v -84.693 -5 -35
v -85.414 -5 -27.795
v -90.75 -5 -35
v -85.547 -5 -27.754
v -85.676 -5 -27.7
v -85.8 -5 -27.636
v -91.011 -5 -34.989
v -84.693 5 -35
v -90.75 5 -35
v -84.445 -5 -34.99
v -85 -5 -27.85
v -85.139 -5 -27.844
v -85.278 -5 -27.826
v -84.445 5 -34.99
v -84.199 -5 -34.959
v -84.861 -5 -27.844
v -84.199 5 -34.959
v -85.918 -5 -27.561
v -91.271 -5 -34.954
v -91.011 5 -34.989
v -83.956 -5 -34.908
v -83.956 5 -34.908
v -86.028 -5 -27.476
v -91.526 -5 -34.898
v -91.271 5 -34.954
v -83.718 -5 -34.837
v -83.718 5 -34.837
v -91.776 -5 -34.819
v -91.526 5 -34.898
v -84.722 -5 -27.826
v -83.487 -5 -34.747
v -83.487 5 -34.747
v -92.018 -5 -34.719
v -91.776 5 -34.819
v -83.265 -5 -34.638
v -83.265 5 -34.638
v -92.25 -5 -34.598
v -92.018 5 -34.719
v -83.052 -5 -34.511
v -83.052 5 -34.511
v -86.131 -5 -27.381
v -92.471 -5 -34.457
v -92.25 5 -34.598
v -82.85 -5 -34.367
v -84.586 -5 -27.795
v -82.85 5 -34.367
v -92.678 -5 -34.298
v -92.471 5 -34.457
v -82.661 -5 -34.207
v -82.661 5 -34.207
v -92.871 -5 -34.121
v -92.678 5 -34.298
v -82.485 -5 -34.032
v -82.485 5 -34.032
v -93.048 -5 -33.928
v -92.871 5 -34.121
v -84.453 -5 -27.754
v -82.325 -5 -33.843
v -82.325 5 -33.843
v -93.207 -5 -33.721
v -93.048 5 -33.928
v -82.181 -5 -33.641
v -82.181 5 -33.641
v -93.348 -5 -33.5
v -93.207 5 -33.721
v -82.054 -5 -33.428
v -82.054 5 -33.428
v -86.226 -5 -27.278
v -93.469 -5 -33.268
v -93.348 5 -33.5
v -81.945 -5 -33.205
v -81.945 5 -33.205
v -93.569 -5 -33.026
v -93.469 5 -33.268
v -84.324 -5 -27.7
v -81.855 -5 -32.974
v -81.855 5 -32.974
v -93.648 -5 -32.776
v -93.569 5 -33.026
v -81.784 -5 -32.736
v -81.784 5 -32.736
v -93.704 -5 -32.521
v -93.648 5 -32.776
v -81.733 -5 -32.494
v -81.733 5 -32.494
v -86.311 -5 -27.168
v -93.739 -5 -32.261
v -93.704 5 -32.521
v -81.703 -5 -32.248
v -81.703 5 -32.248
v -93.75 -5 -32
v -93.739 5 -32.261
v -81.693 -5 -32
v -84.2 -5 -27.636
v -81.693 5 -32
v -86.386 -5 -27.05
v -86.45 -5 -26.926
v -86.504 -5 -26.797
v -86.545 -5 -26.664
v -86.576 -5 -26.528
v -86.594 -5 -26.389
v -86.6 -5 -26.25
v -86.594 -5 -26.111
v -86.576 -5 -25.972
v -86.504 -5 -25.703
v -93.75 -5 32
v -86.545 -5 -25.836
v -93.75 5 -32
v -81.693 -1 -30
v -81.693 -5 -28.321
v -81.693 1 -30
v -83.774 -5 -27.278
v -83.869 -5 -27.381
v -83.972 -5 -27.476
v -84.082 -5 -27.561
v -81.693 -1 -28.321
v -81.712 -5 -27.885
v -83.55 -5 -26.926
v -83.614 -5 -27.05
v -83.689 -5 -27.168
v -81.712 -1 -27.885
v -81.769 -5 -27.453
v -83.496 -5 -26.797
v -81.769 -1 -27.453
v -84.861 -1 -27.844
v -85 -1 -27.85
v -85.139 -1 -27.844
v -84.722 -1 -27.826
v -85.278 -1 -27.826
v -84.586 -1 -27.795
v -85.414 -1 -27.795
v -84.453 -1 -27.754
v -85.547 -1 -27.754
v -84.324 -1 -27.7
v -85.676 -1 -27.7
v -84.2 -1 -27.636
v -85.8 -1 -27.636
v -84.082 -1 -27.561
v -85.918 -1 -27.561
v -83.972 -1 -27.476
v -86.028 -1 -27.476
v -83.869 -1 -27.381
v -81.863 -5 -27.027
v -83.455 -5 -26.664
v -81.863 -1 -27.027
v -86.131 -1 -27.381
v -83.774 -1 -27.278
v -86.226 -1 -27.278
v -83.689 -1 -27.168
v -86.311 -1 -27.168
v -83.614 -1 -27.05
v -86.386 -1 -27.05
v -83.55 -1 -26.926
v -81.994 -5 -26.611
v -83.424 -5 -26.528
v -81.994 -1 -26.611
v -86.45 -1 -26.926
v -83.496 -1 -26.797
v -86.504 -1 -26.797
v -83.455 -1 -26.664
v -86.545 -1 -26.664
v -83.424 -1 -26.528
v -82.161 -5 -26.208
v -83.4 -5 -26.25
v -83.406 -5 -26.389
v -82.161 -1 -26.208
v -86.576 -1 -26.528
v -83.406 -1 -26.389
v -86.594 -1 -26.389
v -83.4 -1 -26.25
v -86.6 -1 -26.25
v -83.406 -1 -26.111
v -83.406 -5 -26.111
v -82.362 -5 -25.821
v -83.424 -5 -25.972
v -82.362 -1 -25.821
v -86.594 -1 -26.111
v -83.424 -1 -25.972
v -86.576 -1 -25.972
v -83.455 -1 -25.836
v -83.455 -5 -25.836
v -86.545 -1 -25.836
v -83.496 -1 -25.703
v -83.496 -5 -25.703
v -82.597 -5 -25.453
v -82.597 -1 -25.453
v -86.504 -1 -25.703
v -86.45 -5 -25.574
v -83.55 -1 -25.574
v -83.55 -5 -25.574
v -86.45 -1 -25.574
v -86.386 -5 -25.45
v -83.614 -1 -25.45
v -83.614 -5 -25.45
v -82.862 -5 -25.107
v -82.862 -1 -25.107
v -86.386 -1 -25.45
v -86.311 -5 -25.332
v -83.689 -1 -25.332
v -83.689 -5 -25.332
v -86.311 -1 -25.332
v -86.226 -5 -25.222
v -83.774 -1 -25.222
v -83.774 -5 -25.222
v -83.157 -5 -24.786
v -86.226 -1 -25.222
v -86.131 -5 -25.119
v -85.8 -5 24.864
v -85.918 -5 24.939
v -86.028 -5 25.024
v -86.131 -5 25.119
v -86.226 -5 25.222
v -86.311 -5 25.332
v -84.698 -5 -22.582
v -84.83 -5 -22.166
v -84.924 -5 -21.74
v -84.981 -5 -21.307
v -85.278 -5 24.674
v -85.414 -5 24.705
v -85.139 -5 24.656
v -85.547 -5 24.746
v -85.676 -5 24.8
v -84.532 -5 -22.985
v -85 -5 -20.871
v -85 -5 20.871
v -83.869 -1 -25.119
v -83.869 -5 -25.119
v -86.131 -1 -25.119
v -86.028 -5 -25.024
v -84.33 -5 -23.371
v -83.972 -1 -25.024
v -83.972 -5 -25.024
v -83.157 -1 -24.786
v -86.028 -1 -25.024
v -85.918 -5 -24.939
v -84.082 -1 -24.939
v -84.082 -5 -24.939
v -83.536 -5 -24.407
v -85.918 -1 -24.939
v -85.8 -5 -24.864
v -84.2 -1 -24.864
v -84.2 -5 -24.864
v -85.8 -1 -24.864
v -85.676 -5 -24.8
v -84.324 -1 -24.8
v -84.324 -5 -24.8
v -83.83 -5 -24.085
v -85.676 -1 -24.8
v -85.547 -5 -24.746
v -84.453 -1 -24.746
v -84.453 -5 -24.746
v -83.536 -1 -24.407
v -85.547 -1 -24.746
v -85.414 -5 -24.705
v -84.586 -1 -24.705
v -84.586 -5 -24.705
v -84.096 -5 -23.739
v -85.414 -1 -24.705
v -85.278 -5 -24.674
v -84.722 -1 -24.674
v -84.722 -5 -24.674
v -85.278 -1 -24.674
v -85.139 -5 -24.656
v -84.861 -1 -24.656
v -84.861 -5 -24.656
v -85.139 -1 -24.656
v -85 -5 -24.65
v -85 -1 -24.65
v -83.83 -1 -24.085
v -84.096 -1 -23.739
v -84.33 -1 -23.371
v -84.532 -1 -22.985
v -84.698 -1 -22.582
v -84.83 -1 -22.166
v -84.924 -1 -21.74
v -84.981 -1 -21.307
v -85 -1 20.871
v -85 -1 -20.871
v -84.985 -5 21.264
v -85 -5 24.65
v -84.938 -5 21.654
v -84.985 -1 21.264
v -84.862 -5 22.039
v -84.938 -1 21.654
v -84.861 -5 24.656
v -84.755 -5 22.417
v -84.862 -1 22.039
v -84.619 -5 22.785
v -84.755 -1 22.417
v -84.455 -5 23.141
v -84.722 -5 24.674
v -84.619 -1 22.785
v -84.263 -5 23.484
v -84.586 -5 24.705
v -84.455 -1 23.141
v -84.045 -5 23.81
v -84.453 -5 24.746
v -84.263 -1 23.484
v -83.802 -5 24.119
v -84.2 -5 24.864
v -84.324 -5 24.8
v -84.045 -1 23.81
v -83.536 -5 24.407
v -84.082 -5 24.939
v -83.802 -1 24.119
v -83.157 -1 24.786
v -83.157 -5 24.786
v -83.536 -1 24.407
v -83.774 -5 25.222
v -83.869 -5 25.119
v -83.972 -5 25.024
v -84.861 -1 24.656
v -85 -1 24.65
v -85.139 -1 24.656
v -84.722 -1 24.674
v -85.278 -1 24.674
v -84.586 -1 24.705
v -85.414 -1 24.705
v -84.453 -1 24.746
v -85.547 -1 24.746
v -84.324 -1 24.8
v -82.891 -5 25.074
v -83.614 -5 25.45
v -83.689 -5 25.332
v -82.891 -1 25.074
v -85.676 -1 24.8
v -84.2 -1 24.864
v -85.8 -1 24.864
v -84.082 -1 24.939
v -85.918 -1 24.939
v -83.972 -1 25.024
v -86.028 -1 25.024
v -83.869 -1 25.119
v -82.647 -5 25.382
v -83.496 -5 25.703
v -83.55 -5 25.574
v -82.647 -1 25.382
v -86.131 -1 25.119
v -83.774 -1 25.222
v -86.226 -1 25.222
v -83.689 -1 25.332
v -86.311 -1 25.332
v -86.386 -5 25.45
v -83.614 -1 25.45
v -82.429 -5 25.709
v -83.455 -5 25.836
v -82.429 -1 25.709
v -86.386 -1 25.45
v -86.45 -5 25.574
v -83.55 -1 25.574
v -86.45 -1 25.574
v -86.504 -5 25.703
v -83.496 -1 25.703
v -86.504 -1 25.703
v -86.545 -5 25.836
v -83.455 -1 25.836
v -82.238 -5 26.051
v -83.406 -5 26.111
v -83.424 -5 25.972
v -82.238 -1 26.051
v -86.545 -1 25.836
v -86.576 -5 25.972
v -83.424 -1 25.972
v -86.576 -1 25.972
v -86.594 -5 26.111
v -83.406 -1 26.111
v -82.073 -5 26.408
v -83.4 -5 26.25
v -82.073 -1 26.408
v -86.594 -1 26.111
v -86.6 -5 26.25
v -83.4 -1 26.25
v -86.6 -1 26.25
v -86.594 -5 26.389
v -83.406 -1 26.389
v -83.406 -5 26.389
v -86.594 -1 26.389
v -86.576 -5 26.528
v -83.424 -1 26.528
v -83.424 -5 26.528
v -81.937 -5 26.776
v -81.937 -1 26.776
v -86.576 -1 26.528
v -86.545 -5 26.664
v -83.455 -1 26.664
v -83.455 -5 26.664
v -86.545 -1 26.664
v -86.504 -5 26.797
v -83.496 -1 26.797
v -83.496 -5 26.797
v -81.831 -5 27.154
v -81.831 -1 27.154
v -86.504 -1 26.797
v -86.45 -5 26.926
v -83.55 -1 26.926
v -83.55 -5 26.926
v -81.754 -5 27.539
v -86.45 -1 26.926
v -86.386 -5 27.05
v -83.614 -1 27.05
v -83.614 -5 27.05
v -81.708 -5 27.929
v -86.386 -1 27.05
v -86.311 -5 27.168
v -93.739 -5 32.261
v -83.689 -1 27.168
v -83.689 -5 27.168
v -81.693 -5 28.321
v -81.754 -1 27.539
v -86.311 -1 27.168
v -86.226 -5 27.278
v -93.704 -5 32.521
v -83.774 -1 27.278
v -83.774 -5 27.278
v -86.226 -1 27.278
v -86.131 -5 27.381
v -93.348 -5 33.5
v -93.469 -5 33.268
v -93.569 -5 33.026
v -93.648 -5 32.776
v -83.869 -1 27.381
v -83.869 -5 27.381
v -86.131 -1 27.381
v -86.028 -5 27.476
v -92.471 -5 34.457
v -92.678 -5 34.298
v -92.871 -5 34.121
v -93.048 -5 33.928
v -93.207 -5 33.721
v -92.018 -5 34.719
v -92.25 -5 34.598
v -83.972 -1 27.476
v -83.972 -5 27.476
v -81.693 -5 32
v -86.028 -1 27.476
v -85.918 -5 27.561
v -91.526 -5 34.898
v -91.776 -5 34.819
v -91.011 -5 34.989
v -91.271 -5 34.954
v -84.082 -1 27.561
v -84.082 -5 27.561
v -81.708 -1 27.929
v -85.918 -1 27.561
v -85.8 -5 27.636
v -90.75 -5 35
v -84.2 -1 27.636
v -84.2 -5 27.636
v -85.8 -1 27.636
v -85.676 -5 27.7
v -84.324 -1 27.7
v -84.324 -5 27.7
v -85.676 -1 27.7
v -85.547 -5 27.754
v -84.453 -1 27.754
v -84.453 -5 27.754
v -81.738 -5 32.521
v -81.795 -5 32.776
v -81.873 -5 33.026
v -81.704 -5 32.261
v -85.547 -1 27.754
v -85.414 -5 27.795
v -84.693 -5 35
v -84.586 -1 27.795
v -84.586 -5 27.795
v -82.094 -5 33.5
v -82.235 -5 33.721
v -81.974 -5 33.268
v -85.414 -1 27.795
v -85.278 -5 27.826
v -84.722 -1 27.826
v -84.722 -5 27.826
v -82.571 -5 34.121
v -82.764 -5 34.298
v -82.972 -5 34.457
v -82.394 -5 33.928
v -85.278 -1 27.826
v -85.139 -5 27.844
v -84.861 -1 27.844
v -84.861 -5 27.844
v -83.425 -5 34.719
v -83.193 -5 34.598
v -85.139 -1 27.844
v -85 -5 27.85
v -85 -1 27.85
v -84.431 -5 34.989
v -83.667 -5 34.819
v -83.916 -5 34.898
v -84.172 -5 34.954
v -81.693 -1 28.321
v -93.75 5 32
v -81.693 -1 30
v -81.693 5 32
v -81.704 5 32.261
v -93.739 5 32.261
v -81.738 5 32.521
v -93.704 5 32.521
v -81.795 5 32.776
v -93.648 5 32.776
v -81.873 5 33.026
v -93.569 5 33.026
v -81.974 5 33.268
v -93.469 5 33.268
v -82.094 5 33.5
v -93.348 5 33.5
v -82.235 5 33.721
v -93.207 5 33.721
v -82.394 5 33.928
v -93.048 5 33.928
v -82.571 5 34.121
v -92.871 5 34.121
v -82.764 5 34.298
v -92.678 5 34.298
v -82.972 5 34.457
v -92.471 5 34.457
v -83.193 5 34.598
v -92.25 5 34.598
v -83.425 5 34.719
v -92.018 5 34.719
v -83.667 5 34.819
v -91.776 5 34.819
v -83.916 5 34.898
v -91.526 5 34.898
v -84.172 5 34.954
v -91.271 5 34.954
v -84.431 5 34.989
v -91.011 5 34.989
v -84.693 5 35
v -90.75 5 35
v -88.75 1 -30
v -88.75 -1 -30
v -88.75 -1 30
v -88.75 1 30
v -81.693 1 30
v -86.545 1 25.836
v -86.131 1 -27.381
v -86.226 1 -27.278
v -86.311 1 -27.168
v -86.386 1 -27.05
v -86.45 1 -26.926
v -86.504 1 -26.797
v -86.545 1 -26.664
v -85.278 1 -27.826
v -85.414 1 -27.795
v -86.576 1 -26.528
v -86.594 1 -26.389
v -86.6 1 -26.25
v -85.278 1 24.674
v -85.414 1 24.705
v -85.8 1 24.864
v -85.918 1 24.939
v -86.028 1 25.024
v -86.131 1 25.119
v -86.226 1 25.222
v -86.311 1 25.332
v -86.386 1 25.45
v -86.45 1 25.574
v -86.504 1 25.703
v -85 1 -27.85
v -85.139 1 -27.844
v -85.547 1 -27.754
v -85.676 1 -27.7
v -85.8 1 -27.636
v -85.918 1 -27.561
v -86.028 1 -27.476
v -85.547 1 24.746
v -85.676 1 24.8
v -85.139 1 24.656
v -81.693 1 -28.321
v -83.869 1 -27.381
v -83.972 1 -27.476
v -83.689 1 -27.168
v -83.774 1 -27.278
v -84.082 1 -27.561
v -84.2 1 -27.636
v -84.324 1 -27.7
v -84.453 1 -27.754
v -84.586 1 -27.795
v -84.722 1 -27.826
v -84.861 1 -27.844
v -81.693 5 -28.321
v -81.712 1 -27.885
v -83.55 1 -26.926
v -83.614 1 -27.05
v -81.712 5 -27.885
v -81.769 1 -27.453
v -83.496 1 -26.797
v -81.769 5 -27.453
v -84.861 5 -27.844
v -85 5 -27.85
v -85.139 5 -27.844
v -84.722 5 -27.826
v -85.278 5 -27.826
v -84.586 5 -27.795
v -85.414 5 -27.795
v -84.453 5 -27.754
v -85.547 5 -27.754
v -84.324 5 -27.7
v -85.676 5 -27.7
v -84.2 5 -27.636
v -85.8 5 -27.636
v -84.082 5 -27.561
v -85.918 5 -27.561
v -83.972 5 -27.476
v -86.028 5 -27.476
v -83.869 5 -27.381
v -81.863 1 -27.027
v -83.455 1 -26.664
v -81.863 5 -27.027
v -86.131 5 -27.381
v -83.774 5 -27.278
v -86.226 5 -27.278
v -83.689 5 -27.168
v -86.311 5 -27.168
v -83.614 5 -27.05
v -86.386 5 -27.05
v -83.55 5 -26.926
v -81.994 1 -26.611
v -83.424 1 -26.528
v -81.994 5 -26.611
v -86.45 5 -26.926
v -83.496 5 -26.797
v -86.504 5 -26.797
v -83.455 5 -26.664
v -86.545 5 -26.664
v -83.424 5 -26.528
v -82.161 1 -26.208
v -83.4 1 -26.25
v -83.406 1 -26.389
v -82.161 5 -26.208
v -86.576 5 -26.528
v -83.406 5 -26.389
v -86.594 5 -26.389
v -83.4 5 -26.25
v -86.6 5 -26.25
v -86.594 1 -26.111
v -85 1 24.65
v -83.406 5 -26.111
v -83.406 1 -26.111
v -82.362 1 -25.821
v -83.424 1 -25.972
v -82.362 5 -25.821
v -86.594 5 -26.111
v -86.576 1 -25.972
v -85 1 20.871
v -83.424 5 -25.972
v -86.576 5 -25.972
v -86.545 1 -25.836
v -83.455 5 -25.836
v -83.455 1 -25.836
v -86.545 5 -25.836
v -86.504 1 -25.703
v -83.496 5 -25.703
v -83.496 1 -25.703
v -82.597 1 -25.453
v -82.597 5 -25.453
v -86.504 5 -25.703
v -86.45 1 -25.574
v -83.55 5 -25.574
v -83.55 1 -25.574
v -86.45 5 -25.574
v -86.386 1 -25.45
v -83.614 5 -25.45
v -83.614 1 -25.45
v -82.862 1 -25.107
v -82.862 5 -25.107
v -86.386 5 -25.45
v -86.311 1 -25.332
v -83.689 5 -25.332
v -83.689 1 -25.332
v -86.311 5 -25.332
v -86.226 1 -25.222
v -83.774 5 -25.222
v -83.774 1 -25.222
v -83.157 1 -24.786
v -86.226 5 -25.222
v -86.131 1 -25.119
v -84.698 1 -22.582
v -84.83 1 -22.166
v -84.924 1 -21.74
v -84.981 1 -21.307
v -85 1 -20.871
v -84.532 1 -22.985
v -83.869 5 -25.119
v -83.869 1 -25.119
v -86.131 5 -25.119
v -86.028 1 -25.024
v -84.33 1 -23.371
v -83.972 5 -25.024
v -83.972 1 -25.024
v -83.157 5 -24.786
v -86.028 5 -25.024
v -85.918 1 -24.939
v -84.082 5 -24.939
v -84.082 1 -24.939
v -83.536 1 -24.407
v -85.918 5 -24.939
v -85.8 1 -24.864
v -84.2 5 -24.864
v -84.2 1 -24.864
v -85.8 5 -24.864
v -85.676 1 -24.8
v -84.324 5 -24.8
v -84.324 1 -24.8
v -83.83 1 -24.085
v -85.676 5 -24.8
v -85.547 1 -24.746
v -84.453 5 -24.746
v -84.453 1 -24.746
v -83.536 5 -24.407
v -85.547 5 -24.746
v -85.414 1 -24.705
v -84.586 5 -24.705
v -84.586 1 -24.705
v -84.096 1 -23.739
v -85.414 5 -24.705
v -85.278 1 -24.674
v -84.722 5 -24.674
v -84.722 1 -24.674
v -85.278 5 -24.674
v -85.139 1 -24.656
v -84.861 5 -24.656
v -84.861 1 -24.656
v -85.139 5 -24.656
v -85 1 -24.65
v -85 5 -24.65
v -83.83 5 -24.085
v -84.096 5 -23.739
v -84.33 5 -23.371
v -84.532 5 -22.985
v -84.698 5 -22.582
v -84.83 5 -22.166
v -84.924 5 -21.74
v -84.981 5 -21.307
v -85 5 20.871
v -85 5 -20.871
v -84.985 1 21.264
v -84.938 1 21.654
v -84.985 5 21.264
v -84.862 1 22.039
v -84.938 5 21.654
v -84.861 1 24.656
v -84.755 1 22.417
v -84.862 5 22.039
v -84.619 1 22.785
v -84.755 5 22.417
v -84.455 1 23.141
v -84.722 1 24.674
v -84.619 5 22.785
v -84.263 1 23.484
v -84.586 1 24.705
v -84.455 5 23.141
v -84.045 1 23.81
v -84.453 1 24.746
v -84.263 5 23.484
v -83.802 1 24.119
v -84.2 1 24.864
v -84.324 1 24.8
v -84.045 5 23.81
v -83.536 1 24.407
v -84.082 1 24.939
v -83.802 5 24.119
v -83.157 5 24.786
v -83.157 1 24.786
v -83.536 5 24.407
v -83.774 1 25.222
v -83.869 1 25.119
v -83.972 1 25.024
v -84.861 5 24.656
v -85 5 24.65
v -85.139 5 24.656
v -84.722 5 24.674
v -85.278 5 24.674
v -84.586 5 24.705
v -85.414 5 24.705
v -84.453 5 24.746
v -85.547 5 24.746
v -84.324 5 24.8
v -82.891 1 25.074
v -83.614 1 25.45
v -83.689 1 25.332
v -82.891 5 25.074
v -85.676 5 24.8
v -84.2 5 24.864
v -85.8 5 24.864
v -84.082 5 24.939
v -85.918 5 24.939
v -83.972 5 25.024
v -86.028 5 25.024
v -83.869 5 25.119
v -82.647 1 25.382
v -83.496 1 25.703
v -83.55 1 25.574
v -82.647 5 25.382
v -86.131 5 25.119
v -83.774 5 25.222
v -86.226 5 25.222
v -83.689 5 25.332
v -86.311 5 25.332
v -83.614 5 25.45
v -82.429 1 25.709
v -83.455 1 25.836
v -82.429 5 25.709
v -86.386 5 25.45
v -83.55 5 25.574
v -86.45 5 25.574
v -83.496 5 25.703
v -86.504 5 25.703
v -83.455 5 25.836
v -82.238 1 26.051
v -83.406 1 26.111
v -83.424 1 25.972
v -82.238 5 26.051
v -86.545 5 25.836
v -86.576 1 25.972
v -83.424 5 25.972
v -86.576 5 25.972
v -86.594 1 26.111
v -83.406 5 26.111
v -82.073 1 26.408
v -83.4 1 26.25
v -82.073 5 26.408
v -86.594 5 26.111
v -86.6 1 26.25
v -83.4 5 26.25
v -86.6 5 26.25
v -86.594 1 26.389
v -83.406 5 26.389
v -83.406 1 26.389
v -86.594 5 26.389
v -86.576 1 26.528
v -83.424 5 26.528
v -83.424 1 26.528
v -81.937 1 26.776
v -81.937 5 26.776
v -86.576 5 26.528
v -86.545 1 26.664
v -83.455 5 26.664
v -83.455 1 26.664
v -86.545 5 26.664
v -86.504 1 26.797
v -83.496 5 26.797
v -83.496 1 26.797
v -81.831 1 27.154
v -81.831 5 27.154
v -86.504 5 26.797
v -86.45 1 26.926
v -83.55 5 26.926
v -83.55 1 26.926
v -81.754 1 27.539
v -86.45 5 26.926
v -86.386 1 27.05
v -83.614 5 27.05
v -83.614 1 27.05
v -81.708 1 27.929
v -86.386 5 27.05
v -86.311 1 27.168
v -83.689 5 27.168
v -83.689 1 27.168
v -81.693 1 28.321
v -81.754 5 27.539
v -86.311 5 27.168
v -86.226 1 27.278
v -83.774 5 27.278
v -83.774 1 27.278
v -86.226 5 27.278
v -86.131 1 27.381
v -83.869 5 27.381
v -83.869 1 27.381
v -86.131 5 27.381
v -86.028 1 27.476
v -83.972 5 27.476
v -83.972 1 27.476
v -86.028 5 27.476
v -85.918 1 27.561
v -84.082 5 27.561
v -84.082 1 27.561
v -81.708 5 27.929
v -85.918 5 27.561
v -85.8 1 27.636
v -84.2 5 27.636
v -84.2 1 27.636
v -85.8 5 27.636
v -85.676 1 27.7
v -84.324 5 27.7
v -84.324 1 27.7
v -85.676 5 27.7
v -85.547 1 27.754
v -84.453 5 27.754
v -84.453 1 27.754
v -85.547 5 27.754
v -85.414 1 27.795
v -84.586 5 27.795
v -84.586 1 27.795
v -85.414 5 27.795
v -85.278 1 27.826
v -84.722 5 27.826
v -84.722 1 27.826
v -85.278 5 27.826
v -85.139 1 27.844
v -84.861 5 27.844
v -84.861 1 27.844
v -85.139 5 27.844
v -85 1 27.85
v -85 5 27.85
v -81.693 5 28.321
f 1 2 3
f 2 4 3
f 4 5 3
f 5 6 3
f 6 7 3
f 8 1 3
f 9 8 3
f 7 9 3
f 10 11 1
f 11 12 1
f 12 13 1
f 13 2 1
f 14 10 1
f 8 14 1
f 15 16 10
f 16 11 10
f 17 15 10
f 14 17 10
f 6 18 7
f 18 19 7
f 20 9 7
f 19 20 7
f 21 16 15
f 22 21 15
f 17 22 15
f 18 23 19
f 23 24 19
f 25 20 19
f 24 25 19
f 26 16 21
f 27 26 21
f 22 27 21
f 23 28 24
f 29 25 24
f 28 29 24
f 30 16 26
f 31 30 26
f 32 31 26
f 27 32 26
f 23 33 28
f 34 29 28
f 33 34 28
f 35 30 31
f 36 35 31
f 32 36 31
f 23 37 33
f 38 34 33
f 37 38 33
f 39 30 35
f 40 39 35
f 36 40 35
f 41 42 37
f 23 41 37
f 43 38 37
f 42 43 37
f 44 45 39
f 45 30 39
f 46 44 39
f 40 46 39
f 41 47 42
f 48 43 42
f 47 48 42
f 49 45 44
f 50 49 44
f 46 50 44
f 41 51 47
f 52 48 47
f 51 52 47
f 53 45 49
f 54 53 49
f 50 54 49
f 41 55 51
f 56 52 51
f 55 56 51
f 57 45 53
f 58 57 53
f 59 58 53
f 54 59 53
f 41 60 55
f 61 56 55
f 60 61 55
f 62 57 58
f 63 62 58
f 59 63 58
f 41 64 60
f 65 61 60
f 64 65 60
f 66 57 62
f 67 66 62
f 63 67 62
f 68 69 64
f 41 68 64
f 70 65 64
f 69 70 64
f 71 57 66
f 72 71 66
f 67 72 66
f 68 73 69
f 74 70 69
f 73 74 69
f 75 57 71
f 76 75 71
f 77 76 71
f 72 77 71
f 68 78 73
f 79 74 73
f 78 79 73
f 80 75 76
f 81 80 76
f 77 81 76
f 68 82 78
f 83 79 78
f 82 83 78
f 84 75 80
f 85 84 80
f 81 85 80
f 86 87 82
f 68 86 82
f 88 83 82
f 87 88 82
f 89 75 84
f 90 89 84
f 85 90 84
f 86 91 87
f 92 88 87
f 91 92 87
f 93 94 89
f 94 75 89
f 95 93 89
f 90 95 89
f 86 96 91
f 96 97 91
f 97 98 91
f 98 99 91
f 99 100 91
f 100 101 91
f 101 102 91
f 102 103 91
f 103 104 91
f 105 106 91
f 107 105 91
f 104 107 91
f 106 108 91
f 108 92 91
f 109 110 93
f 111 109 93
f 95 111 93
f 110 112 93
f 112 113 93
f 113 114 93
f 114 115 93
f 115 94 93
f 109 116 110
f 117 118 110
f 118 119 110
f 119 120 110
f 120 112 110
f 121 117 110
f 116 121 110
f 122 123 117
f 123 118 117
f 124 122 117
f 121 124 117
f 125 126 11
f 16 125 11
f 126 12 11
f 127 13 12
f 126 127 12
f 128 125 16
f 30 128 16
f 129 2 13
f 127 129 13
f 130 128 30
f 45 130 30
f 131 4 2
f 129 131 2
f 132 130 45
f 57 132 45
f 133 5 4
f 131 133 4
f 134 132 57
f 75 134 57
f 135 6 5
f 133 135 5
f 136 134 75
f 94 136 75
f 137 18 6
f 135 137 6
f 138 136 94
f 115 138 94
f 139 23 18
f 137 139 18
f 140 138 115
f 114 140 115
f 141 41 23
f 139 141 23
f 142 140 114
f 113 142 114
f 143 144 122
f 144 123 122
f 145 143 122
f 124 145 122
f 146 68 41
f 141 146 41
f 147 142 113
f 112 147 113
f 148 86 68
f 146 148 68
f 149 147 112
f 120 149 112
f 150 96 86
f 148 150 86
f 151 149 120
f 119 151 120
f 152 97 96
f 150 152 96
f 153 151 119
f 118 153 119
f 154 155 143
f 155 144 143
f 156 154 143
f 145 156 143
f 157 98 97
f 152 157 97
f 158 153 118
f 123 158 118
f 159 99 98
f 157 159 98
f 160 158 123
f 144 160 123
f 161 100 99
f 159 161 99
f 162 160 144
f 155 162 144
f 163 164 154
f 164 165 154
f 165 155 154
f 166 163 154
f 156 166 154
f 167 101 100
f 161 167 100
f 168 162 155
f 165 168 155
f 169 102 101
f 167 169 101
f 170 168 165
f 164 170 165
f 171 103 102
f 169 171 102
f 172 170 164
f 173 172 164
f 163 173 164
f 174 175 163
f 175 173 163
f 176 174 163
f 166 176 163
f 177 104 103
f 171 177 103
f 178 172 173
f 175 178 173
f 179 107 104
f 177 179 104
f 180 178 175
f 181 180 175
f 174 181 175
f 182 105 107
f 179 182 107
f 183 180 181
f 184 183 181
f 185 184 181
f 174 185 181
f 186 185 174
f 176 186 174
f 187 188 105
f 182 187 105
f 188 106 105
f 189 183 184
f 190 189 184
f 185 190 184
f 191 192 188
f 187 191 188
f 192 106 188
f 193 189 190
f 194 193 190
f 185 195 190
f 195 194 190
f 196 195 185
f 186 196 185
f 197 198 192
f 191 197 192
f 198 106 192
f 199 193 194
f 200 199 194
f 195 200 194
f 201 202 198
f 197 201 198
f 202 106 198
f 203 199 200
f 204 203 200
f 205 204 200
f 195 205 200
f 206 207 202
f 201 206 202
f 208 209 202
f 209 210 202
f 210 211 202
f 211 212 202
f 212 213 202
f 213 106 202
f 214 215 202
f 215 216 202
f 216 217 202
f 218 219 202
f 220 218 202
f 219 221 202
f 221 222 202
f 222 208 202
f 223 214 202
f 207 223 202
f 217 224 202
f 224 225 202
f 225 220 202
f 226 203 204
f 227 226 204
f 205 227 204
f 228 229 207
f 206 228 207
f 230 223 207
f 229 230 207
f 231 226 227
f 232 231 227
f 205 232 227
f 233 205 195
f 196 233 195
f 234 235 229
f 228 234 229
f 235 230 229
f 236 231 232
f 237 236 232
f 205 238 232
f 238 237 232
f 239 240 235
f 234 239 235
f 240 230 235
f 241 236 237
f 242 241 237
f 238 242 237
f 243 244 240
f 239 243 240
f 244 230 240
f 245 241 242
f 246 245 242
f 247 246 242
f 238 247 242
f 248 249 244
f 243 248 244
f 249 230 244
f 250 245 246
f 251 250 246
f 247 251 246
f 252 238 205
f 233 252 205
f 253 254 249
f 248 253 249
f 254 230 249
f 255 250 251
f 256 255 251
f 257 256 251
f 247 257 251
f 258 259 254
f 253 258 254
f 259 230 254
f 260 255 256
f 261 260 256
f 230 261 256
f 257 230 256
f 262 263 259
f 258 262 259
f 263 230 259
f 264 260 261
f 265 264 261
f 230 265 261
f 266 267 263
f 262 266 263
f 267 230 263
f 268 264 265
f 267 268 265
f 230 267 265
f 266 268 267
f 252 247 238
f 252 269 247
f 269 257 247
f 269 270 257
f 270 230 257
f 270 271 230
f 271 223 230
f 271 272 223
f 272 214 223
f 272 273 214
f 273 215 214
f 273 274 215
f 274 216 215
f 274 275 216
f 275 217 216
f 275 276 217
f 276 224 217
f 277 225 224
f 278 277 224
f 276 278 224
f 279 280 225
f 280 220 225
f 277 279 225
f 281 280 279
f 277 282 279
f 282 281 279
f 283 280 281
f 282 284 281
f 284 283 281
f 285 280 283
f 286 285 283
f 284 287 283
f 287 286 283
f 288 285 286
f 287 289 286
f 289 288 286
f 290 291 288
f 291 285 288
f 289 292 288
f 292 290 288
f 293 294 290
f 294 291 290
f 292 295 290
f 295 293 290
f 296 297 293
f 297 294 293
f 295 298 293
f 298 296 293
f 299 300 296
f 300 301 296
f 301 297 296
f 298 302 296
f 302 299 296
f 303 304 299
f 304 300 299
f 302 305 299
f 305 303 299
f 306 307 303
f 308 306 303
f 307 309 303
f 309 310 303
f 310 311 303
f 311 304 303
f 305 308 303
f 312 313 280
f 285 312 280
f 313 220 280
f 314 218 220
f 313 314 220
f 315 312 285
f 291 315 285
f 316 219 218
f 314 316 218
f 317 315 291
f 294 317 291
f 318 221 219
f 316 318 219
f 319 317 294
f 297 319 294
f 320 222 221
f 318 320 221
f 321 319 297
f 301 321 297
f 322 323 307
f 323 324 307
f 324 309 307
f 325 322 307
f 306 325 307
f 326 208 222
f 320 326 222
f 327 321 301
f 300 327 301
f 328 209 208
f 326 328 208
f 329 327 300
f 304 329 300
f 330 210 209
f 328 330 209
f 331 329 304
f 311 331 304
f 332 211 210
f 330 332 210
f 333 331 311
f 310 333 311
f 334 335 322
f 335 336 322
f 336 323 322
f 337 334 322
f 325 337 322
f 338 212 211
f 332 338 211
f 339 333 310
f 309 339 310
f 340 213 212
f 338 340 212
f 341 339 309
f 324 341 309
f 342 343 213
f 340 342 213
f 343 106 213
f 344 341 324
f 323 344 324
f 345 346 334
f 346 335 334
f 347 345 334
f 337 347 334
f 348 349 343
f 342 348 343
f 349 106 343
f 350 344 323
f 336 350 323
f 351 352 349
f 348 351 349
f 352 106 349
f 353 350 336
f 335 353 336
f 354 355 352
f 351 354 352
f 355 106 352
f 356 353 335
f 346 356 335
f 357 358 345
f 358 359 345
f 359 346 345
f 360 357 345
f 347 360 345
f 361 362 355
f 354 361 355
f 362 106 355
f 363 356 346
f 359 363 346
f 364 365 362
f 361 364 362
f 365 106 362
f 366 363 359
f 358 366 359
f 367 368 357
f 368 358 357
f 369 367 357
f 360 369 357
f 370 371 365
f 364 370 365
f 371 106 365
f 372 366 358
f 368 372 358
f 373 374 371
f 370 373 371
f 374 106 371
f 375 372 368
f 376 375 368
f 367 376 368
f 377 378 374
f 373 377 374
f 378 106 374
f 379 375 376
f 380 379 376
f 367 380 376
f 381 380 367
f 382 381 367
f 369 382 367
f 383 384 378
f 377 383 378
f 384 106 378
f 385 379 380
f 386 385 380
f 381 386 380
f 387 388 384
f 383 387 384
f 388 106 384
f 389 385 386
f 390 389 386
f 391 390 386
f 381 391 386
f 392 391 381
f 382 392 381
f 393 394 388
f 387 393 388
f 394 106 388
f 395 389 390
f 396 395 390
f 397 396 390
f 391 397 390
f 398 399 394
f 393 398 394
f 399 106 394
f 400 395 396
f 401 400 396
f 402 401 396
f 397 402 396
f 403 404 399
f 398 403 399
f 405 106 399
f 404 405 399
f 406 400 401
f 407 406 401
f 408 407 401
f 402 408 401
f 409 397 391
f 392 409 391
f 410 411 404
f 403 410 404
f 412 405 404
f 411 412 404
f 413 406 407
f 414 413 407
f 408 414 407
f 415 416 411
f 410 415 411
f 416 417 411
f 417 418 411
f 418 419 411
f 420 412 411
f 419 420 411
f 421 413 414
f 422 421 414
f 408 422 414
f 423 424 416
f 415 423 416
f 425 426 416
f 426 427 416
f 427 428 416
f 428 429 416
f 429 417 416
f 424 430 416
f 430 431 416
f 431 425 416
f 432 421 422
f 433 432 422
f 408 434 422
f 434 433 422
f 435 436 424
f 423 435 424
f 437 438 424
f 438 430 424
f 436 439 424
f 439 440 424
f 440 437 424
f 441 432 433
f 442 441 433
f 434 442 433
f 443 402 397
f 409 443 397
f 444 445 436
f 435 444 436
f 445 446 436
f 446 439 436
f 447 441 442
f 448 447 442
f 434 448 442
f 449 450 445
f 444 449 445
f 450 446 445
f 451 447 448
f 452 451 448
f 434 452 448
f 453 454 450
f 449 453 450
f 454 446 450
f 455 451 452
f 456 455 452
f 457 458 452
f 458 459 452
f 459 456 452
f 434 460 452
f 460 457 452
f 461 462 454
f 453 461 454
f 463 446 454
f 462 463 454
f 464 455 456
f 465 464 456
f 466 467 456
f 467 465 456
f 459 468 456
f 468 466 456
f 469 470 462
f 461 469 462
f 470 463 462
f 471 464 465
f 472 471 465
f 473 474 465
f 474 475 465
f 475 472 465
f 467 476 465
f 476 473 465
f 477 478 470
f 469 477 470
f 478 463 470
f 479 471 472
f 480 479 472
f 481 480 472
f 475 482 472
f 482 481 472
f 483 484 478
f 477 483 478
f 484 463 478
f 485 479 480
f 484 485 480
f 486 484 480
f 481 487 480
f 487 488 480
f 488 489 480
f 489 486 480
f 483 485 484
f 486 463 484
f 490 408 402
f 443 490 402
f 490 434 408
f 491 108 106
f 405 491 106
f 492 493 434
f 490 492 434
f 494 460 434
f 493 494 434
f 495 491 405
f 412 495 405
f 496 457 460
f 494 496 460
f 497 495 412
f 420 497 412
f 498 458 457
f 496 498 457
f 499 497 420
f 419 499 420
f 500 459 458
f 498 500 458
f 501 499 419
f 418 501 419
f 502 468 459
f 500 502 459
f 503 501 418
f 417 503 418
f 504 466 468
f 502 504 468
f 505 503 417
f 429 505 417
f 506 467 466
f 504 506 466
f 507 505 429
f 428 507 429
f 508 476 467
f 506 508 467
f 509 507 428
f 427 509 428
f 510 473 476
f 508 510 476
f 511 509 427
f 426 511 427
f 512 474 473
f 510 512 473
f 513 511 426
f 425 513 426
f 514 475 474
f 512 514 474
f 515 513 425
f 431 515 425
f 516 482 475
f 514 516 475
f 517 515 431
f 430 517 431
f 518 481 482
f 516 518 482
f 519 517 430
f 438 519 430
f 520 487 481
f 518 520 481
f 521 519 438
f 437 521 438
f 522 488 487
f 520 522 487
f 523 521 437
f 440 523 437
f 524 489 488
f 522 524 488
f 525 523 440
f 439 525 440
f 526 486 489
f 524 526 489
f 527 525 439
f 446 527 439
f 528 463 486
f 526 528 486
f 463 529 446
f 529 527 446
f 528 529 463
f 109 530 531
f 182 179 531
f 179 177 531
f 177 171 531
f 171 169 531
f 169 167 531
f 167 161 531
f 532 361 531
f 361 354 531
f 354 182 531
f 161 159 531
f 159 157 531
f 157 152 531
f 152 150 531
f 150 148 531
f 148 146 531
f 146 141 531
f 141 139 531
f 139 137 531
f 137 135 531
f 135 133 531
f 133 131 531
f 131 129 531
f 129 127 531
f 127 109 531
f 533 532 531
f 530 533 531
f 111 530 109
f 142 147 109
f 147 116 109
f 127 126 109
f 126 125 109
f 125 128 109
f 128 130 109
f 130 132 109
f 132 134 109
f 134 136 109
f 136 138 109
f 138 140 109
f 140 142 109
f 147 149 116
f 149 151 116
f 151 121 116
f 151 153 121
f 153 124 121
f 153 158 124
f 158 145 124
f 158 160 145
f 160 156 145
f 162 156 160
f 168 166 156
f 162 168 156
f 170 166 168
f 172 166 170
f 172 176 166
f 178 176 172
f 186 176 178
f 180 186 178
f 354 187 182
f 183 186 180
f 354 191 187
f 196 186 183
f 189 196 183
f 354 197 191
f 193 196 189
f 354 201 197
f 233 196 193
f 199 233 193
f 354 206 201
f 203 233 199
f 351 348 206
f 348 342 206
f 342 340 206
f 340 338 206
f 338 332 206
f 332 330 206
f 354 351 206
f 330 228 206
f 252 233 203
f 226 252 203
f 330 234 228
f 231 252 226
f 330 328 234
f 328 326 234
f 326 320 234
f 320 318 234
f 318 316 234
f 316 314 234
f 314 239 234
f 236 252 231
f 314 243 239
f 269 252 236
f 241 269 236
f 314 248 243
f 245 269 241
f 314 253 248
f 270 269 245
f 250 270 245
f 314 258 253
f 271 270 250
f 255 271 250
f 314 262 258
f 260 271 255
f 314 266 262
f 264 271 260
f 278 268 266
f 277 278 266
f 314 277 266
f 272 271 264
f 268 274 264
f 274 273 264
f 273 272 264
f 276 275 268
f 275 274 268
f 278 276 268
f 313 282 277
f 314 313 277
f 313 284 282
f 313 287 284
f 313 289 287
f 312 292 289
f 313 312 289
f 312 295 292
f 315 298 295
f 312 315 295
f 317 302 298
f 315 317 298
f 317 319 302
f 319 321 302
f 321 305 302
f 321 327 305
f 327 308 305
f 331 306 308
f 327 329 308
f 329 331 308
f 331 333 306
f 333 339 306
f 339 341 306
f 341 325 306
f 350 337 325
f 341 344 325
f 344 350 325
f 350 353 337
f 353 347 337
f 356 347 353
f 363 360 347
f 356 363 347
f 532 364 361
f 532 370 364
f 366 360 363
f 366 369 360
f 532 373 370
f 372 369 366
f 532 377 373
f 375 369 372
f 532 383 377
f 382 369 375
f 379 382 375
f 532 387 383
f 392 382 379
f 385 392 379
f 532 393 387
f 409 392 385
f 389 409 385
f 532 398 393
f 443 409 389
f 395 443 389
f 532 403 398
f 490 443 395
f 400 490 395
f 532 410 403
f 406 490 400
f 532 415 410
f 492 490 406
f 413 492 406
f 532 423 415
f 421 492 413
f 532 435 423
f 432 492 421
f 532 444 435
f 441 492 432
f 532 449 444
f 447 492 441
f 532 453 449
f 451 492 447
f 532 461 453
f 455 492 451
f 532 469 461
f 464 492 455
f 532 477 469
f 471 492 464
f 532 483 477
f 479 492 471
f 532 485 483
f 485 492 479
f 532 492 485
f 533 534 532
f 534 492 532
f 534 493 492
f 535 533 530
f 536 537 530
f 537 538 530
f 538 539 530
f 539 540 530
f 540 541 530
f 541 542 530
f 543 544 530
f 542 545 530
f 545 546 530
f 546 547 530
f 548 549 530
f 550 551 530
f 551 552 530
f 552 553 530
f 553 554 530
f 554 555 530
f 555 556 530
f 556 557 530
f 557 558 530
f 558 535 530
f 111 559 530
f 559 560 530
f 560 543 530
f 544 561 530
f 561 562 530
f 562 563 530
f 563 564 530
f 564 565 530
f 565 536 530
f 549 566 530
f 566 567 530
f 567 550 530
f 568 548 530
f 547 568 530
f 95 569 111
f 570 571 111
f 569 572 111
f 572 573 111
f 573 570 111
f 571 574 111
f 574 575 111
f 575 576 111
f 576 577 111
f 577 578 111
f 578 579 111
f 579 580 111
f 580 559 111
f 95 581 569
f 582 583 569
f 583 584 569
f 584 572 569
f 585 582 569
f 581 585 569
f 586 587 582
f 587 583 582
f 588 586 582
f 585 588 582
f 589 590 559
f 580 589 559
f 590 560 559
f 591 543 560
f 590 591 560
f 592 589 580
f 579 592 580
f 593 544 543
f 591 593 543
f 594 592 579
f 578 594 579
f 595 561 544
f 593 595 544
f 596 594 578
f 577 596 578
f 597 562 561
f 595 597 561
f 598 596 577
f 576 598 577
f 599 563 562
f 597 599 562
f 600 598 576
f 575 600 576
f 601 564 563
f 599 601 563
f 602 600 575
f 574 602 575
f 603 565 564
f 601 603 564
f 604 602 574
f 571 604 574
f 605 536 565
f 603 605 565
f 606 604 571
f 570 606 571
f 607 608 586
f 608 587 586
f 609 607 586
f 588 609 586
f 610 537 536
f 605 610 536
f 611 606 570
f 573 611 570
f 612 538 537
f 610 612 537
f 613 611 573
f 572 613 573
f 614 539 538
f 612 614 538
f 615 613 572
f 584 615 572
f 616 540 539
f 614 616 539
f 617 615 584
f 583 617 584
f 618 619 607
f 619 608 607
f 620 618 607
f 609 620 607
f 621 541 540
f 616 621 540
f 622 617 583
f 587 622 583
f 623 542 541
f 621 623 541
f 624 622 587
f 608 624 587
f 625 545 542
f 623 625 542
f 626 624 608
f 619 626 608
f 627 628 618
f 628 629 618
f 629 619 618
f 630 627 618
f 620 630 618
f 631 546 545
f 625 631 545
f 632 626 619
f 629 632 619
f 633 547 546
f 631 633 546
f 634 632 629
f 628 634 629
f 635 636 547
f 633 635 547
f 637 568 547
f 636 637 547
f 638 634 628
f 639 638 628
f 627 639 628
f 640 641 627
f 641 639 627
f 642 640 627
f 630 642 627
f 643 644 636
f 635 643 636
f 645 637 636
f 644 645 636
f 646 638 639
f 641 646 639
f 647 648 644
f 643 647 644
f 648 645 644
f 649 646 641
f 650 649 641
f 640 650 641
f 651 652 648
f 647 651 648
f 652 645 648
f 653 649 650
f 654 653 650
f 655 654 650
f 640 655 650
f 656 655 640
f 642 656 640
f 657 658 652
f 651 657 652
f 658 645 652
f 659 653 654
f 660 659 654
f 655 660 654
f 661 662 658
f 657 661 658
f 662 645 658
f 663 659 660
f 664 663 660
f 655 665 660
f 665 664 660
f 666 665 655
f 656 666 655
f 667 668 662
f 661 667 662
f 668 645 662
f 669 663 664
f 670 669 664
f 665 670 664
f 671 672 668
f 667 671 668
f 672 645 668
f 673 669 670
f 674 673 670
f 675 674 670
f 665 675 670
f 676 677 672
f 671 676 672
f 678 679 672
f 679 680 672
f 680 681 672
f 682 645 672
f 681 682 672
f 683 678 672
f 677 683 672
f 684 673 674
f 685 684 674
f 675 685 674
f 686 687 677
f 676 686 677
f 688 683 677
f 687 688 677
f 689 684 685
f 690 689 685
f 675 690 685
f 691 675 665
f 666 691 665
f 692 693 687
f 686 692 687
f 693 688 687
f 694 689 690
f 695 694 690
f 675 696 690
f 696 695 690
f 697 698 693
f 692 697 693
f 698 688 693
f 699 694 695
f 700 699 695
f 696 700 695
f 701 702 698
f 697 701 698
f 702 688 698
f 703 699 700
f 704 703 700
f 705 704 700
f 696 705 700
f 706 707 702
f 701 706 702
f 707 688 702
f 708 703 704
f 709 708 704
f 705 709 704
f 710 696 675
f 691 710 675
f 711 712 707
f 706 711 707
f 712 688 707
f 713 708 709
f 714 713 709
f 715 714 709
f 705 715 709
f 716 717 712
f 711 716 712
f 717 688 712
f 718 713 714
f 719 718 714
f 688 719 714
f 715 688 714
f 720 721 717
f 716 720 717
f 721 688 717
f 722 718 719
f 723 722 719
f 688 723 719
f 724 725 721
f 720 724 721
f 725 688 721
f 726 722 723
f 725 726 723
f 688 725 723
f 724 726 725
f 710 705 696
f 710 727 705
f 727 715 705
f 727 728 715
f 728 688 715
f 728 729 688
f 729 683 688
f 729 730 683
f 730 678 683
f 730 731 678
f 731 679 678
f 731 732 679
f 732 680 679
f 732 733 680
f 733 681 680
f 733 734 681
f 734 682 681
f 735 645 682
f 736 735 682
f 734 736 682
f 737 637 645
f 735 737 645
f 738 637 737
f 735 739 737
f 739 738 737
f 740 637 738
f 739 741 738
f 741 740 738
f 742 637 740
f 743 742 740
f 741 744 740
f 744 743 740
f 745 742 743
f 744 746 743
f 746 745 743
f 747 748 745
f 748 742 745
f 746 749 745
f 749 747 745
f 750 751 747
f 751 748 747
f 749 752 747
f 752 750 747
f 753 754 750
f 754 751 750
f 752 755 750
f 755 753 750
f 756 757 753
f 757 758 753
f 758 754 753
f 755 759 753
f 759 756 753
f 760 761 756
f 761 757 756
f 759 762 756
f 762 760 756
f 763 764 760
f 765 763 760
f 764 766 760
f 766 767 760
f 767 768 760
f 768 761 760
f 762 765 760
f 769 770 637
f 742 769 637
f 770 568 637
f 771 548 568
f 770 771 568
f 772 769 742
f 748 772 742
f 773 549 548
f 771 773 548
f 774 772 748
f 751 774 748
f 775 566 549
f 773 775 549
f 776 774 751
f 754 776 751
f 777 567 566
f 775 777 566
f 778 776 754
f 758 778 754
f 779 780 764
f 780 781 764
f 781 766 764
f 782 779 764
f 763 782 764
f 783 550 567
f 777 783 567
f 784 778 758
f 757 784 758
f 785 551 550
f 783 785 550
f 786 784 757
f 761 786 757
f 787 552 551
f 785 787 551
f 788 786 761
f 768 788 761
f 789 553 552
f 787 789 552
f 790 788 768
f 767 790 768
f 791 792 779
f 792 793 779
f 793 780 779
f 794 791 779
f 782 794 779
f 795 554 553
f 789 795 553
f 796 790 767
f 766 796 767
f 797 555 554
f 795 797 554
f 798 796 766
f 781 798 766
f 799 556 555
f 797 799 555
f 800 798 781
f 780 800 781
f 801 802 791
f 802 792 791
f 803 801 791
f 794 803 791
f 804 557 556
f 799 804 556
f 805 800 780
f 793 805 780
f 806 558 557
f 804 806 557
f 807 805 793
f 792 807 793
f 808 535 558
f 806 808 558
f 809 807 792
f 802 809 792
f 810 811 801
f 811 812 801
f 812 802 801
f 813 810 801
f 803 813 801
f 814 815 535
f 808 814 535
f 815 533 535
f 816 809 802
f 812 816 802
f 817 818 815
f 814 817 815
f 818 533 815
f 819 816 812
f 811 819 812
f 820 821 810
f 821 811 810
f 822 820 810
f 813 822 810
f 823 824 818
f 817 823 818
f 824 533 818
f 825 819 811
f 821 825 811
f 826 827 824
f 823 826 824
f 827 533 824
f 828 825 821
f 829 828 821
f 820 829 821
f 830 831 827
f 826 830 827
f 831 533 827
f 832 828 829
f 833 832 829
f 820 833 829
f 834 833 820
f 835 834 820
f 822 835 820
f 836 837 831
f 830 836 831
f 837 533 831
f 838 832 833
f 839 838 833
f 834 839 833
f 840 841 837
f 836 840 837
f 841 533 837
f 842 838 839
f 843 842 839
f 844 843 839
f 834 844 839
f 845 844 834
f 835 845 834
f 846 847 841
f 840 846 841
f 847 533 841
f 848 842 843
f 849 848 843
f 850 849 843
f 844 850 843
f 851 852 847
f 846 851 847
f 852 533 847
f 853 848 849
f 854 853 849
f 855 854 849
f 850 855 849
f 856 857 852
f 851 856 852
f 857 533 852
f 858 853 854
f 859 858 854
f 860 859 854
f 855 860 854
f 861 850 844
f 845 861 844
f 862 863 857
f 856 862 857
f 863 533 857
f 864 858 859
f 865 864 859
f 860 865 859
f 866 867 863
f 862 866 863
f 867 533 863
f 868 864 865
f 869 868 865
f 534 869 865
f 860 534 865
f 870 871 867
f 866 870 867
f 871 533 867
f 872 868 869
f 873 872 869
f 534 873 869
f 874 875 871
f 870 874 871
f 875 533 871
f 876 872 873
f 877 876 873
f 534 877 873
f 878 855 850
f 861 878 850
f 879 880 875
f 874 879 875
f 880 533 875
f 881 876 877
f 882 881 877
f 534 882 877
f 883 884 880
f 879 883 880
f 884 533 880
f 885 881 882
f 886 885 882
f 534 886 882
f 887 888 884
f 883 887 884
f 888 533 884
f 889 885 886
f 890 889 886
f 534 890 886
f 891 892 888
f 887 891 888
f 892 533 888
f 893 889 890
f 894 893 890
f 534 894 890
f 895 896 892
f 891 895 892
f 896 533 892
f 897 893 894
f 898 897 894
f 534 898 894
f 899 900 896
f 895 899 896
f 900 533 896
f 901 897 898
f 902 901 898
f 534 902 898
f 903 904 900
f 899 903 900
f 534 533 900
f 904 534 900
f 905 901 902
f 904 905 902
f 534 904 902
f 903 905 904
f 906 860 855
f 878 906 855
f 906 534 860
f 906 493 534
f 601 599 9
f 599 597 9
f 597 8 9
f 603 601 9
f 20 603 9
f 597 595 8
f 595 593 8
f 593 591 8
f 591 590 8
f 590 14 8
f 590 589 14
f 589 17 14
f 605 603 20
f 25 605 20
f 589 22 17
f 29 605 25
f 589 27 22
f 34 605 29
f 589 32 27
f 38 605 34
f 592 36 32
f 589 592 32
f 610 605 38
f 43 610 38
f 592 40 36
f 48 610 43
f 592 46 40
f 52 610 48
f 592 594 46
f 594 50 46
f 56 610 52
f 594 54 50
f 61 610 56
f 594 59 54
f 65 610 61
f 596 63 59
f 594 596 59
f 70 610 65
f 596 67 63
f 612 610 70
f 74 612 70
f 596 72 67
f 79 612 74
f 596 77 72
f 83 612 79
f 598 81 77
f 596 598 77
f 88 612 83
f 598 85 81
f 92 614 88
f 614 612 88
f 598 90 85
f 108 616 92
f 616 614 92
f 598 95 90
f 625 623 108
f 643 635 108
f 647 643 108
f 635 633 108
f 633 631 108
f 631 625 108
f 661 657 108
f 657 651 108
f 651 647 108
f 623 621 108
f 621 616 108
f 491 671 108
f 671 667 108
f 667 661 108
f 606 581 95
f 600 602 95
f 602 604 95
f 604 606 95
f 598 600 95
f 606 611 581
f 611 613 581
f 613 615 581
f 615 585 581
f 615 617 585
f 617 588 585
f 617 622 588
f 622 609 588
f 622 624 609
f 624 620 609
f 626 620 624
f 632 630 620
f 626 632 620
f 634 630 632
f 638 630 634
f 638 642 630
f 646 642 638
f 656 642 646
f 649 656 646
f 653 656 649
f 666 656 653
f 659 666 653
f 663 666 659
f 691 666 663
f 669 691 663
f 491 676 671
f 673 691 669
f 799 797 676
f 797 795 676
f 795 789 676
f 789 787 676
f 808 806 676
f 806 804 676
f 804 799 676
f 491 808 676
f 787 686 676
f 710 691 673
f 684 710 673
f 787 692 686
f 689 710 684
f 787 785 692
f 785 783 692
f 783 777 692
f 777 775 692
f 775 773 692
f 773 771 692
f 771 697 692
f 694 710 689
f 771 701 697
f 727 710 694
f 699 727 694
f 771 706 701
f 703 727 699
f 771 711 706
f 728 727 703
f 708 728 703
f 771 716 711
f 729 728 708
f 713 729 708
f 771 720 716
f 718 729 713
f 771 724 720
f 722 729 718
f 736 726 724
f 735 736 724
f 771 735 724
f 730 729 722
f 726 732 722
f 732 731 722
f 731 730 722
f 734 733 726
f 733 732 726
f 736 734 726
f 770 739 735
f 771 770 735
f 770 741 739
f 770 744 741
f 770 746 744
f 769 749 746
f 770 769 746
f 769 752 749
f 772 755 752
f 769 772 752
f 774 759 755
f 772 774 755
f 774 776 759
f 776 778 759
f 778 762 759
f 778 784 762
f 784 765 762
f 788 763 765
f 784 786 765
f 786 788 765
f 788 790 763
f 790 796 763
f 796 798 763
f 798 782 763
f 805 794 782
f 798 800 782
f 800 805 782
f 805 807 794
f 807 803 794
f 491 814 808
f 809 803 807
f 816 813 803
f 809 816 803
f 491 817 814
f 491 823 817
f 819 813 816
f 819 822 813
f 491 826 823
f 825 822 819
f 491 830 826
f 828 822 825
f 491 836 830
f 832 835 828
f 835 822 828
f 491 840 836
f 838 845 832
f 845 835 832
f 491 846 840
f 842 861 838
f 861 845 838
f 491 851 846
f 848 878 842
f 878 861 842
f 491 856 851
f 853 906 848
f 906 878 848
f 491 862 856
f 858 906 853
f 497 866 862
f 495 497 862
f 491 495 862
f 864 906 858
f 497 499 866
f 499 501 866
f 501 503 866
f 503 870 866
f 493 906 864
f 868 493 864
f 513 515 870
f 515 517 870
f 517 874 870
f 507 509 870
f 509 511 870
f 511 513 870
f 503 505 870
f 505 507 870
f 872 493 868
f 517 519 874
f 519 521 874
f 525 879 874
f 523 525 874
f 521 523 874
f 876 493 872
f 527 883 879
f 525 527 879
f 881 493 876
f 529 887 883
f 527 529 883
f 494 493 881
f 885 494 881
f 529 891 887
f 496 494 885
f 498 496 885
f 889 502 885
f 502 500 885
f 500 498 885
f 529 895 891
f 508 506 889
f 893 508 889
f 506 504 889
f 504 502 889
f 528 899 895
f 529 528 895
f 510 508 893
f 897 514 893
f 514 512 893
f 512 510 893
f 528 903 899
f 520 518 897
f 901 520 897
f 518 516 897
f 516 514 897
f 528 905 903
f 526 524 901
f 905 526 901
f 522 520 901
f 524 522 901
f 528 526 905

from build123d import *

# Parameters (mm, degrees)
SKETCH3_R           = 1.6
BOSS_EXTRUDE1_DEPTH = 5
SKETCH4_W           = 13.182571809
SKETCH4_H           = 60
CUT_EXTRUDE1_DEPTH  = 1
FILLET1_R           = 5
FILLET2_R           = 3


with BuildPart() as part:
    # Sketch3 → Boss-Extrude1 (new body, symmetric)
    with BuildSketch(Plane(origin=(0, 0, 0), x_dir=(1, 0, 0), z_dir=(0, 1, 0))):
        Polygon((-81.692561237, 30), (-81.692561237, 26.25), (-85, 22.942561237), (-85, -22.942561237), (-81.692561237, -26.25), (-81.692561237, -30), (-81.692561237, -35), (-93.75, -35), (-93.75, 35), (-81.692561237, 35), align=None)
        with Locations((-85, 26.25)):
            Circle(SKETCH3_R, mode=Mode.SUBTRACT)
        with Locations((-85, -26.25)):
            Circle(SKETCH3_R, mode=Mode.SUBTRACT)
    extrude(amount=BOSS_EXTRUDE1_DEPTH, both=True)

    # Sketch4 → Cut-Extrude1 (cut, symmetric)
    with BuildSketch(Plane(origin=(0, 0, 0), x_dir=(1, 0, 0), z_dir=(0, 1, 0))):
        with Locations((-82.158714096, 0)):
            Rectangle(SKETCH4_W, SKETCH4_H)
    extrude(amount=CUT_EXTRUDE1_DEPTH, both=True, mode=Mode.SUBTRACT)

    # Fillet1
    fillet1_edges = [part.edges().sort_by_distance(p)[0] for p in [
        (-81.692561237, 3, -26.25),
        (-85, 3, -22.942561237),
        (-85, 3, 22.942561237),
        (-81.692561237, 3, 26.25),
        (-81.692561237, -3, -26.25),
        (-85, -3, -22.942561237),
        (-85, -3, 22.942561237),
        (-81.692561237, -3, 26.25),
    ]]
    fillet(fillet1_edges, radius=FILLET1_R)

    # Fillet2
    fillet2_edges = [part.edges().sort_by_distance(p)[0] for p in [
        (-81.692561237, 0, 35),
        (-93.75, 0, 35),
        (-93.75, 0, -35),
        (-81.692561237, 0, -35),
    ]]
    fillet(fillet2_edges, radius=FILLET2_R)


solid = part.part
